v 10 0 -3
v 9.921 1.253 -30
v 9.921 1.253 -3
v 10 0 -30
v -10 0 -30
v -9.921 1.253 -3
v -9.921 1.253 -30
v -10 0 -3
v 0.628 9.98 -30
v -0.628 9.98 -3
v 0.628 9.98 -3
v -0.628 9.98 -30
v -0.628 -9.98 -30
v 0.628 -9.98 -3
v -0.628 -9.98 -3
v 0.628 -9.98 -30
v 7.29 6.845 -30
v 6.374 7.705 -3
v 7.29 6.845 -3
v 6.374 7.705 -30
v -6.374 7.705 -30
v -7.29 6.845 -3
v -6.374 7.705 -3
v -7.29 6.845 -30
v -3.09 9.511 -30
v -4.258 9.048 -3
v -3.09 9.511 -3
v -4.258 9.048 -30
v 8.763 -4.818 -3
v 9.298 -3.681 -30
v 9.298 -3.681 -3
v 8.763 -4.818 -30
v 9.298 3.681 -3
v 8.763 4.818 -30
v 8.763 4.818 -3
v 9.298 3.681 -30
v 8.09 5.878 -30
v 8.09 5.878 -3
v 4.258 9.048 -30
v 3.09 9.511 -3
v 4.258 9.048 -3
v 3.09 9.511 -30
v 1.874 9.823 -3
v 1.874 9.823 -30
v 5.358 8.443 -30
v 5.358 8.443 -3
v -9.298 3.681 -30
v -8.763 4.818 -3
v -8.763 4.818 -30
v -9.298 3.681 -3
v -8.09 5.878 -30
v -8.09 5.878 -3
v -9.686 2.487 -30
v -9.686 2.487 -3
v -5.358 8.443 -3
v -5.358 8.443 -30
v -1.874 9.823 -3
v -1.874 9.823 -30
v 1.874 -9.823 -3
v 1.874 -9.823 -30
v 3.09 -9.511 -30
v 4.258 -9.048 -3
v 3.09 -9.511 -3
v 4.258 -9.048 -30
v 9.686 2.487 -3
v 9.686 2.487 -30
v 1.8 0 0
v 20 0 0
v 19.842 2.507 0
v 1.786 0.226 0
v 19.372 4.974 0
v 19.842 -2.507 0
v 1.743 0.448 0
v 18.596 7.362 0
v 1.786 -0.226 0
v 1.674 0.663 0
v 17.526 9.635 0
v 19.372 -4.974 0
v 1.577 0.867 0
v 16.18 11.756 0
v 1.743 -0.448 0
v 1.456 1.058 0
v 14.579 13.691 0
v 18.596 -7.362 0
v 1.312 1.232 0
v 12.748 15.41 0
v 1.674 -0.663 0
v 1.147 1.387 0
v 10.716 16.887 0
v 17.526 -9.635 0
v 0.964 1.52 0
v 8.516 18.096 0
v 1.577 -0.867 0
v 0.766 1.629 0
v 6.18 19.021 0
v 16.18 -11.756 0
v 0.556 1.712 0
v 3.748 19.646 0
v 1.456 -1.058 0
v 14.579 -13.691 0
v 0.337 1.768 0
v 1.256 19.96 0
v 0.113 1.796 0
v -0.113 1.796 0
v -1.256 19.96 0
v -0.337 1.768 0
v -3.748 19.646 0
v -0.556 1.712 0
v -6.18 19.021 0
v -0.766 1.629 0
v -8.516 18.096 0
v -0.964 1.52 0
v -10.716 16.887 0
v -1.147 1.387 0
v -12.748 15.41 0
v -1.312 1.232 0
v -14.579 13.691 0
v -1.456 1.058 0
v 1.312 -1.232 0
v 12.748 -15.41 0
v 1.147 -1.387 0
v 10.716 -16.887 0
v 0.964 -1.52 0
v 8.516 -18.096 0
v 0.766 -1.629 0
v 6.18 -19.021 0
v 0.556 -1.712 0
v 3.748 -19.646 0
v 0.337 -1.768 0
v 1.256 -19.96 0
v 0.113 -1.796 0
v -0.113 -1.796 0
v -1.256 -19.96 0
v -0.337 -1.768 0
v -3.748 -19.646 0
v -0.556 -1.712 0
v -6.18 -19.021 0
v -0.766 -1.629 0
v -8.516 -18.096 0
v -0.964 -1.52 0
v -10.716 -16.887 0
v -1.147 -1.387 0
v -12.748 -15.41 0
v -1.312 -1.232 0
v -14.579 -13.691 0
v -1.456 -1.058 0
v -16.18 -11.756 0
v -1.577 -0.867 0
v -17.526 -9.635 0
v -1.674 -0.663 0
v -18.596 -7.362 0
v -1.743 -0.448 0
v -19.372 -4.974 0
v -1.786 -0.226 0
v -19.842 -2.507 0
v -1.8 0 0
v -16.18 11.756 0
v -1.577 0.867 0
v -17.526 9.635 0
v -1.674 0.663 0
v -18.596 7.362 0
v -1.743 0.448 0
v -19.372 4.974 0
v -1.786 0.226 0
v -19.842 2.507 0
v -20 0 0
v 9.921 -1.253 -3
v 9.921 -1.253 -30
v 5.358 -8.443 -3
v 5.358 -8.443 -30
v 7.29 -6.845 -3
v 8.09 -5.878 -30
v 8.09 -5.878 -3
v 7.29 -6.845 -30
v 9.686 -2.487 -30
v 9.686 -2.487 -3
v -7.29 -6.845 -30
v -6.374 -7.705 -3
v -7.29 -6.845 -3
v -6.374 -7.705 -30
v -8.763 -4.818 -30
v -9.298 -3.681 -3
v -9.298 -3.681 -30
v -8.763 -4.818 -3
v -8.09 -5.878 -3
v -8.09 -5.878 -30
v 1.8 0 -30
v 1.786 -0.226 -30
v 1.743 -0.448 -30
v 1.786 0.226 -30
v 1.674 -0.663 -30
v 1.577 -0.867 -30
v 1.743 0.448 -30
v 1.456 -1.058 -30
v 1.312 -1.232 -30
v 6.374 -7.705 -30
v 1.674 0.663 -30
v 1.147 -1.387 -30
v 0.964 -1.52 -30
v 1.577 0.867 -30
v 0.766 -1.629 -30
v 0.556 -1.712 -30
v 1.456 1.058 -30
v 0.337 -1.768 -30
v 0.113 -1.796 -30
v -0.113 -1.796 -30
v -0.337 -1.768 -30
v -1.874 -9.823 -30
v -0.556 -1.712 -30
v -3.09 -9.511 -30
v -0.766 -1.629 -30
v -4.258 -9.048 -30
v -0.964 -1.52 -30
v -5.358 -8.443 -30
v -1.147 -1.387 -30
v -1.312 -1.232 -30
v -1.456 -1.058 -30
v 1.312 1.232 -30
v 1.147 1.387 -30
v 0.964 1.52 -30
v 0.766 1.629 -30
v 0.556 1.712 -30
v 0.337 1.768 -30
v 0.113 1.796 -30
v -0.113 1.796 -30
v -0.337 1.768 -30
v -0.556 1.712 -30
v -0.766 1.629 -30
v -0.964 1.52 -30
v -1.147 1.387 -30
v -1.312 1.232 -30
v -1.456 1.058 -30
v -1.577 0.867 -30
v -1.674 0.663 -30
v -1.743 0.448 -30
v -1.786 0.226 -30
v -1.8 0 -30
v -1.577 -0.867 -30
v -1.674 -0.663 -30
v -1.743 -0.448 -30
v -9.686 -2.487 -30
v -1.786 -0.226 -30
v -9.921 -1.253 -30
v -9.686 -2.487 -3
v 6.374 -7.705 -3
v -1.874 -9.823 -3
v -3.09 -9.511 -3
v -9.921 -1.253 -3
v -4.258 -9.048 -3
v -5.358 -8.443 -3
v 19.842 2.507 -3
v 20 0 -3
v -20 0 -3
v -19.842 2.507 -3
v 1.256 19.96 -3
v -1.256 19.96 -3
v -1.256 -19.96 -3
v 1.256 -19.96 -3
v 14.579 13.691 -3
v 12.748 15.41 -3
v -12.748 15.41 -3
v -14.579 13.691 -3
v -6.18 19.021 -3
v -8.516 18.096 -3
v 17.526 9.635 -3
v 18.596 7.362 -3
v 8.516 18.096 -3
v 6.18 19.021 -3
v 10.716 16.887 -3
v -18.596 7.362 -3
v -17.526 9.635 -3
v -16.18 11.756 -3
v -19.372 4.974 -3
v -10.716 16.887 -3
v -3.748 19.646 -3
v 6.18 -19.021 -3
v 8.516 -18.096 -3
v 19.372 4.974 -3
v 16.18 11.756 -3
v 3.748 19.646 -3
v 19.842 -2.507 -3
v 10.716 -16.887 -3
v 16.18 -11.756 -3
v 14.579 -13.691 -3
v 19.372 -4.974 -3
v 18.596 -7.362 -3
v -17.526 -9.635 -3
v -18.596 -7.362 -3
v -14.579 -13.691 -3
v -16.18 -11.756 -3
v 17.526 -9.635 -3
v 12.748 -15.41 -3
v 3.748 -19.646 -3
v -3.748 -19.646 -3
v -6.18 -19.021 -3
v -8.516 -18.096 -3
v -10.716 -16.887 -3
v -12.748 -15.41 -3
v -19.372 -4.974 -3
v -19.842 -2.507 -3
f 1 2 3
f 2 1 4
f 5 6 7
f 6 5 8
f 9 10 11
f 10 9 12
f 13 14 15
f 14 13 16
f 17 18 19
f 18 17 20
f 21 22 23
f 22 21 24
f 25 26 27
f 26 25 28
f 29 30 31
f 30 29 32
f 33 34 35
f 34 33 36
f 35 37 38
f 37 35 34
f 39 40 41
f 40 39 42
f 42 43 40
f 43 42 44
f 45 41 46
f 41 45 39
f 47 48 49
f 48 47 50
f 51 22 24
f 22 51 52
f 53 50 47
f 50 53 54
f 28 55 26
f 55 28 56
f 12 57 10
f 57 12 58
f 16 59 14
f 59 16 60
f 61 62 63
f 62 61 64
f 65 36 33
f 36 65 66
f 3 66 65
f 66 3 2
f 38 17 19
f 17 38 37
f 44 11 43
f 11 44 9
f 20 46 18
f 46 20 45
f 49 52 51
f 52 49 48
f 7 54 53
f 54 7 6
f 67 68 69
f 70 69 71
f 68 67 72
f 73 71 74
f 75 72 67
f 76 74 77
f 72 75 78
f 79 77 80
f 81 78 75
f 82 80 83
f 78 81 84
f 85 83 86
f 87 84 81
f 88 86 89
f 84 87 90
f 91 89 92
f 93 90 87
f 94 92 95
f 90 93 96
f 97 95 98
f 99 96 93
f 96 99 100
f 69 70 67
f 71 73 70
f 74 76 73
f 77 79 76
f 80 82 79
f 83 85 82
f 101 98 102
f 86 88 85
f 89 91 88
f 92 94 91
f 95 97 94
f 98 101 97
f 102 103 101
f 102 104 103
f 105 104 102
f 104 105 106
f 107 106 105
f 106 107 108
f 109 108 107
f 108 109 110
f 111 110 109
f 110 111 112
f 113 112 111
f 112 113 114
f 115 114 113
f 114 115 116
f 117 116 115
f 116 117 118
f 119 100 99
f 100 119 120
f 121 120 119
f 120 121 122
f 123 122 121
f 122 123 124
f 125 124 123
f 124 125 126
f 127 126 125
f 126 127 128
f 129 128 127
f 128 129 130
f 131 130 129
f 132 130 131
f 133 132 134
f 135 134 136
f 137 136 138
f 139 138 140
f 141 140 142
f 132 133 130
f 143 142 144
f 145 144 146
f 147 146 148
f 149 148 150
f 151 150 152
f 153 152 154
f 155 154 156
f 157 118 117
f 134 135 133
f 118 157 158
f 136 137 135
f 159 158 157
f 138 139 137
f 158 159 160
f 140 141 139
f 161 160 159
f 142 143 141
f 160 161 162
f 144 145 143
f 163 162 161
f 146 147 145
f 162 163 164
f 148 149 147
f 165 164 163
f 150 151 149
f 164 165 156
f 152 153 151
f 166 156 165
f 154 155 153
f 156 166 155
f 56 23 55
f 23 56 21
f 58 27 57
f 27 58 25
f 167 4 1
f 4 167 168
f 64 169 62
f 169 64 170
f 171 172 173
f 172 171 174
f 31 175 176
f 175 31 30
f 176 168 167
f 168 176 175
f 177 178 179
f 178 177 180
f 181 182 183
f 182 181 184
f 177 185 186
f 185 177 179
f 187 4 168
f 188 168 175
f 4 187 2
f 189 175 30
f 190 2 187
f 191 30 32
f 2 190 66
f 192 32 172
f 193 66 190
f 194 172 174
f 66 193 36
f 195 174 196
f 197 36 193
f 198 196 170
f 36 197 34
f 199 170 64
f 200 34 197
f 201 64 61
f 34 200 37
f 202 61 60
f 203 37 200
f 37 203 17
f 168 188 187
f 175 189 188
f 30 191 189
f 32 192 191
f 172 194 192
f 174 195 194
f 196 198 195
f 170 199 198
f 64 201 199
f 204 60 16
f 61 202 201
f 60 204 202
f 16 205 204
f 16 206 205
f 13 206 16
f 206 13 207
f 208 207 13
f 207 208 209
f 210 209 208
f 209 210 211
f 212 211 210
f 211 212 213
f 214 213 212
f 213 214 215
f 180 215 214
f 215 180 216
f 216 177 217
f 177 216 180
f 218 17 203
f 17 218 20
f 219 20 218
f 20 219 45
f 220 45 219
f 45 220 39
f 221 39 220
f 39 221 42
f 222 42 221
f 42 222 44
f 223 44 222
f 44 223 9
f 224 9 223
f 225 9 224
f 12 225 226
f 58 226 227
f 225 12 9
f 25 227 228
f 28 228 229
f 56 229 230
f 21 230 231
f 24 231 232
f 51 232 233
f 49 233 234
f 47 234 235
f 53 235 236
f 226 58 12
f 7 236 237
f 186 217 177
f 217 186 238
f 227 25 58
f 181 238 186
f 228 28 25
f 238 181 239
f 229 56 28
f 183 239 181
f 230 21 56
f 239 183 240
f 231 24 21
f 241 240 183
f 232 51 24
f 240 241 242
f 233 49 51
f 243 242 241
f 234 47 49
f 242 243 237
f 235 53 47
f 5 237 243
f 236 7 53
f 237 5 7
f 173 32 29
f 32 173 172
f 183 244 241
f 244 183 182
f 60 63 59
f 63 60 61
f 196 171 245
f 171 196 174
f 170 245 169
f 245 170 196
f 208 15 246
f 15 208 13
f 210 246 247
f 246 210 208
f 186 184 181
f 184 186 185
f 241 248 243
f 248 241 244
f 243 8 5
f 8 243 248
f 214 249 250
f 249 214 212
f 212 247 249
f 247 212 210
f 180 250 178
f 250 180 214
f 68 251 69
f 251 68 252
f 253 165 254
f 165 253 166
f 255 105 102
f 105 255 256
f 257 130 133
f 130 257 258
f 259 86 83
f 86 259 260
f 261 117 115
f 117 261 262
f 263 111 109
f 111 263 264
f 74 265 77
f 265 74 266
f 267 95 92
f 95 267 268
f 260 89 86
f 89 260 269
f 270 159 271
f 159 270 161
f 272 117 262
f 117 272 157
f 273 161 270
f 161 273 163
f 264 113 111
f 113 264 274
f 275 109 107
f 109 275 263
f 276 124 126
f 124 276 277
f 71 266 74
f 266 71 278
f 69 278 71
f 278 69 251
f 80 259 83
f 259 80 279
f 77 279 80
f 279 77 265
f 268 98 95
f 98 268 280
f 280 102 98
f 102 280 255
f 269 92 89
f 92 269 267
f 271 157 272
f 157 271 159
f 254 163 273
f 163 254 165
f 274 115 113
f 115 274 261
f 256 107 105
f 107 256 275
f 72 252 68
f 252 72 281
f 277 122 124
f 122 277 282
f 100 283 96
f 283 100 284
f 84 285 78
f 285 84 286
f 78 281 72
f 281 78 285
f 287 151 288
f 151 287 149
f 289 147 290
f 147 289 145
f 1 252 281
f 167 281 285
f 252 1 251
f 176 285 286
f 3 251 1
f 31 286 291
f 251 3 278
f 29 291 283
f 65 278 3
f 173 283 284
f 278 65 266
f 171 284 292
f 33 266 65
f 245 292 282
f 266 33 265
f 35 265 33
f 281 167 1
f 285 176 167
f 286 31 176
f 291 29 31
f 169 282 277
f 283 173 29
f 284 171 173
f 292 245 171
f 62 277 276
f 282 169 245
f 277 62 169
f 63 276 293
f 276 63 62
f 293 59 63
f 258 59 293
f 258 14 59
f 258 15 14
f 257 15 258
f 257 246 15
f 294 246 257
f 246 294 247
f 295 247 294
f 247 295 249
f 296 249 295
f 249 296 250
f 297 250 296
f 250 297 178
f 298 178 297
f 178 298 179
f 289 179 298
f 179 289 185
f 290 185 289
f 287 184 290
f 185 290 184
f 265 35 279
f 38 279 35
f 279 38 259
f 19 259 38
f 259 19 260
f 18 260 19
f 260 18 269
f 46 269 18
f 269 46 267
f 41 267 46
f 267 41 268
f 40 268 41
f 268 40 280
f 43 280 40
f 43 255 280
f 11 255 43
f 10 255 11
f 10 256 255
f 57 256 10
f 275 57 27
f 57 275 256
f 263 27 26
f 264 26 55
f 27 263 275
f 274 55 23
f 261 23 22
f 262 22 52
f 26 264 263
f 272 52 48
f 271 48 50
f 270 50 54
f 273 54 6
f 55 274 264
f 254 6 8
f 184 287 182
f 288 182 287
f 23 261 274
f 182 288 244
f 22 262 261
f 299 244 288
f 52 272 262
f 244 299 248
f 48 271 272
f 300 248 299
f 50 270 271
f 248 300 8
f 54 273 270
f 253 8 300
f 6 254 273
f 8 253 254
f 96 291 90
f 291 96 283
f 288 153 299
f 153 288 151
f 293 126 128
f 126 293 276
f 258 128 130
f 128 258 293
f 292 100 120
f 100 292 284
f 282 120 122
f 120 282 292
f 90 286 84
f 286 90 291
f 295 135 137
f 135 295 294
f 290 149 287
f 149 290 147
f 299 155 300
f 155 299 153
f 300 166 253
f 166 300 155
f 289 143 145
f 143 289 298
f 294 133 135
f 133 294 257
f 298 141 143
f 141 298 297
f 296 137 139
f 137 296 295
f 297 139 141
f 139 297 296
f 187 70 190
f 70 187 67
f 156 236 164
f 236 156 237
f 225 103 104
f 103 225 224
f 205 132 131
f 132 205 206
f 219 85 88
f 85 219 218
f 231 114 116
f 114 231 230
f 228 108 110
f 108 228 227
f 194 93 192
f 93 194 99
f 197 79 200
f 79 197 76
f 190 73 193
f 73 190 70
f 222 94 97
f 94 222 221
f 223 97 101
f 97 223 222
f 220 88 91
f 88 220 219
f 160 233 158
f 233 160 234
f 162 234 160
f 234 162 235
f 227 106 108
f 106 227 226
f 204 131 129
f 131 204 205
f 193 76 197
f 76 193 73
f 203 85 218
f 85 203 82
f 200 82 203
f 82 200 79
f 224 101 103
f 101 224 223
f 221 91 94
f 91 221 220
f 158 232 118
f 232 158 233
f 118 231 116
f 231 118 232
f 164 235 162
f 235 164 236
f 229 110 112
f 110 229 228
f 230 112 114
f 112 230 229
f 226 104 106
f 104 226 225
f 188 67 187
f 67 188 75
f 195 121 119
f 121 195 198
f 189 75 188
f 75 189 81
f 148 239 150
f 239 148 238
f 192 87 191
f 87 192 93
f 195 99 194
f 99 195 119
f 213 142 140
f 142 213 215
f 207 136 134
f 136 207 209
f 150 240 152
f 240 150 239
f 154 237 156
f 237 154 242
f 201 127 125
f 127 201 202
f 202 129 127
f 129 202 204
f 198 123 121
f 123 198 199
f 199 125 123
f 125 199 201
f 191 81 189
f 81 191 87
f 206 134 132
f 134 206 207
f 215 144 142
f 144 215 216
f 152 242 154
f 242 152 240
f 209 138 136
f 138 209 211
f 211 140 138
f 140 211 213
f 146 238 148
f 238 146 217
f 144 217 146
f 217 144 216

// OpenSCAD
$fn = 50;


difference() {
	union() {
		translate(v = [0, 0, -30.0000000000]) {
			cylinder(h = 30, r = 10.0000000000);
		}
		translate(v = [0, 0, -3.0000000000]) {
			cylinder(h = 3, r = 20.0000000000);
		}
	}
	union() {
		#translate(v = [0, 0, -30]) {
			cylinder(h = 30, r = 1.8000000000);
		}
	}
}
